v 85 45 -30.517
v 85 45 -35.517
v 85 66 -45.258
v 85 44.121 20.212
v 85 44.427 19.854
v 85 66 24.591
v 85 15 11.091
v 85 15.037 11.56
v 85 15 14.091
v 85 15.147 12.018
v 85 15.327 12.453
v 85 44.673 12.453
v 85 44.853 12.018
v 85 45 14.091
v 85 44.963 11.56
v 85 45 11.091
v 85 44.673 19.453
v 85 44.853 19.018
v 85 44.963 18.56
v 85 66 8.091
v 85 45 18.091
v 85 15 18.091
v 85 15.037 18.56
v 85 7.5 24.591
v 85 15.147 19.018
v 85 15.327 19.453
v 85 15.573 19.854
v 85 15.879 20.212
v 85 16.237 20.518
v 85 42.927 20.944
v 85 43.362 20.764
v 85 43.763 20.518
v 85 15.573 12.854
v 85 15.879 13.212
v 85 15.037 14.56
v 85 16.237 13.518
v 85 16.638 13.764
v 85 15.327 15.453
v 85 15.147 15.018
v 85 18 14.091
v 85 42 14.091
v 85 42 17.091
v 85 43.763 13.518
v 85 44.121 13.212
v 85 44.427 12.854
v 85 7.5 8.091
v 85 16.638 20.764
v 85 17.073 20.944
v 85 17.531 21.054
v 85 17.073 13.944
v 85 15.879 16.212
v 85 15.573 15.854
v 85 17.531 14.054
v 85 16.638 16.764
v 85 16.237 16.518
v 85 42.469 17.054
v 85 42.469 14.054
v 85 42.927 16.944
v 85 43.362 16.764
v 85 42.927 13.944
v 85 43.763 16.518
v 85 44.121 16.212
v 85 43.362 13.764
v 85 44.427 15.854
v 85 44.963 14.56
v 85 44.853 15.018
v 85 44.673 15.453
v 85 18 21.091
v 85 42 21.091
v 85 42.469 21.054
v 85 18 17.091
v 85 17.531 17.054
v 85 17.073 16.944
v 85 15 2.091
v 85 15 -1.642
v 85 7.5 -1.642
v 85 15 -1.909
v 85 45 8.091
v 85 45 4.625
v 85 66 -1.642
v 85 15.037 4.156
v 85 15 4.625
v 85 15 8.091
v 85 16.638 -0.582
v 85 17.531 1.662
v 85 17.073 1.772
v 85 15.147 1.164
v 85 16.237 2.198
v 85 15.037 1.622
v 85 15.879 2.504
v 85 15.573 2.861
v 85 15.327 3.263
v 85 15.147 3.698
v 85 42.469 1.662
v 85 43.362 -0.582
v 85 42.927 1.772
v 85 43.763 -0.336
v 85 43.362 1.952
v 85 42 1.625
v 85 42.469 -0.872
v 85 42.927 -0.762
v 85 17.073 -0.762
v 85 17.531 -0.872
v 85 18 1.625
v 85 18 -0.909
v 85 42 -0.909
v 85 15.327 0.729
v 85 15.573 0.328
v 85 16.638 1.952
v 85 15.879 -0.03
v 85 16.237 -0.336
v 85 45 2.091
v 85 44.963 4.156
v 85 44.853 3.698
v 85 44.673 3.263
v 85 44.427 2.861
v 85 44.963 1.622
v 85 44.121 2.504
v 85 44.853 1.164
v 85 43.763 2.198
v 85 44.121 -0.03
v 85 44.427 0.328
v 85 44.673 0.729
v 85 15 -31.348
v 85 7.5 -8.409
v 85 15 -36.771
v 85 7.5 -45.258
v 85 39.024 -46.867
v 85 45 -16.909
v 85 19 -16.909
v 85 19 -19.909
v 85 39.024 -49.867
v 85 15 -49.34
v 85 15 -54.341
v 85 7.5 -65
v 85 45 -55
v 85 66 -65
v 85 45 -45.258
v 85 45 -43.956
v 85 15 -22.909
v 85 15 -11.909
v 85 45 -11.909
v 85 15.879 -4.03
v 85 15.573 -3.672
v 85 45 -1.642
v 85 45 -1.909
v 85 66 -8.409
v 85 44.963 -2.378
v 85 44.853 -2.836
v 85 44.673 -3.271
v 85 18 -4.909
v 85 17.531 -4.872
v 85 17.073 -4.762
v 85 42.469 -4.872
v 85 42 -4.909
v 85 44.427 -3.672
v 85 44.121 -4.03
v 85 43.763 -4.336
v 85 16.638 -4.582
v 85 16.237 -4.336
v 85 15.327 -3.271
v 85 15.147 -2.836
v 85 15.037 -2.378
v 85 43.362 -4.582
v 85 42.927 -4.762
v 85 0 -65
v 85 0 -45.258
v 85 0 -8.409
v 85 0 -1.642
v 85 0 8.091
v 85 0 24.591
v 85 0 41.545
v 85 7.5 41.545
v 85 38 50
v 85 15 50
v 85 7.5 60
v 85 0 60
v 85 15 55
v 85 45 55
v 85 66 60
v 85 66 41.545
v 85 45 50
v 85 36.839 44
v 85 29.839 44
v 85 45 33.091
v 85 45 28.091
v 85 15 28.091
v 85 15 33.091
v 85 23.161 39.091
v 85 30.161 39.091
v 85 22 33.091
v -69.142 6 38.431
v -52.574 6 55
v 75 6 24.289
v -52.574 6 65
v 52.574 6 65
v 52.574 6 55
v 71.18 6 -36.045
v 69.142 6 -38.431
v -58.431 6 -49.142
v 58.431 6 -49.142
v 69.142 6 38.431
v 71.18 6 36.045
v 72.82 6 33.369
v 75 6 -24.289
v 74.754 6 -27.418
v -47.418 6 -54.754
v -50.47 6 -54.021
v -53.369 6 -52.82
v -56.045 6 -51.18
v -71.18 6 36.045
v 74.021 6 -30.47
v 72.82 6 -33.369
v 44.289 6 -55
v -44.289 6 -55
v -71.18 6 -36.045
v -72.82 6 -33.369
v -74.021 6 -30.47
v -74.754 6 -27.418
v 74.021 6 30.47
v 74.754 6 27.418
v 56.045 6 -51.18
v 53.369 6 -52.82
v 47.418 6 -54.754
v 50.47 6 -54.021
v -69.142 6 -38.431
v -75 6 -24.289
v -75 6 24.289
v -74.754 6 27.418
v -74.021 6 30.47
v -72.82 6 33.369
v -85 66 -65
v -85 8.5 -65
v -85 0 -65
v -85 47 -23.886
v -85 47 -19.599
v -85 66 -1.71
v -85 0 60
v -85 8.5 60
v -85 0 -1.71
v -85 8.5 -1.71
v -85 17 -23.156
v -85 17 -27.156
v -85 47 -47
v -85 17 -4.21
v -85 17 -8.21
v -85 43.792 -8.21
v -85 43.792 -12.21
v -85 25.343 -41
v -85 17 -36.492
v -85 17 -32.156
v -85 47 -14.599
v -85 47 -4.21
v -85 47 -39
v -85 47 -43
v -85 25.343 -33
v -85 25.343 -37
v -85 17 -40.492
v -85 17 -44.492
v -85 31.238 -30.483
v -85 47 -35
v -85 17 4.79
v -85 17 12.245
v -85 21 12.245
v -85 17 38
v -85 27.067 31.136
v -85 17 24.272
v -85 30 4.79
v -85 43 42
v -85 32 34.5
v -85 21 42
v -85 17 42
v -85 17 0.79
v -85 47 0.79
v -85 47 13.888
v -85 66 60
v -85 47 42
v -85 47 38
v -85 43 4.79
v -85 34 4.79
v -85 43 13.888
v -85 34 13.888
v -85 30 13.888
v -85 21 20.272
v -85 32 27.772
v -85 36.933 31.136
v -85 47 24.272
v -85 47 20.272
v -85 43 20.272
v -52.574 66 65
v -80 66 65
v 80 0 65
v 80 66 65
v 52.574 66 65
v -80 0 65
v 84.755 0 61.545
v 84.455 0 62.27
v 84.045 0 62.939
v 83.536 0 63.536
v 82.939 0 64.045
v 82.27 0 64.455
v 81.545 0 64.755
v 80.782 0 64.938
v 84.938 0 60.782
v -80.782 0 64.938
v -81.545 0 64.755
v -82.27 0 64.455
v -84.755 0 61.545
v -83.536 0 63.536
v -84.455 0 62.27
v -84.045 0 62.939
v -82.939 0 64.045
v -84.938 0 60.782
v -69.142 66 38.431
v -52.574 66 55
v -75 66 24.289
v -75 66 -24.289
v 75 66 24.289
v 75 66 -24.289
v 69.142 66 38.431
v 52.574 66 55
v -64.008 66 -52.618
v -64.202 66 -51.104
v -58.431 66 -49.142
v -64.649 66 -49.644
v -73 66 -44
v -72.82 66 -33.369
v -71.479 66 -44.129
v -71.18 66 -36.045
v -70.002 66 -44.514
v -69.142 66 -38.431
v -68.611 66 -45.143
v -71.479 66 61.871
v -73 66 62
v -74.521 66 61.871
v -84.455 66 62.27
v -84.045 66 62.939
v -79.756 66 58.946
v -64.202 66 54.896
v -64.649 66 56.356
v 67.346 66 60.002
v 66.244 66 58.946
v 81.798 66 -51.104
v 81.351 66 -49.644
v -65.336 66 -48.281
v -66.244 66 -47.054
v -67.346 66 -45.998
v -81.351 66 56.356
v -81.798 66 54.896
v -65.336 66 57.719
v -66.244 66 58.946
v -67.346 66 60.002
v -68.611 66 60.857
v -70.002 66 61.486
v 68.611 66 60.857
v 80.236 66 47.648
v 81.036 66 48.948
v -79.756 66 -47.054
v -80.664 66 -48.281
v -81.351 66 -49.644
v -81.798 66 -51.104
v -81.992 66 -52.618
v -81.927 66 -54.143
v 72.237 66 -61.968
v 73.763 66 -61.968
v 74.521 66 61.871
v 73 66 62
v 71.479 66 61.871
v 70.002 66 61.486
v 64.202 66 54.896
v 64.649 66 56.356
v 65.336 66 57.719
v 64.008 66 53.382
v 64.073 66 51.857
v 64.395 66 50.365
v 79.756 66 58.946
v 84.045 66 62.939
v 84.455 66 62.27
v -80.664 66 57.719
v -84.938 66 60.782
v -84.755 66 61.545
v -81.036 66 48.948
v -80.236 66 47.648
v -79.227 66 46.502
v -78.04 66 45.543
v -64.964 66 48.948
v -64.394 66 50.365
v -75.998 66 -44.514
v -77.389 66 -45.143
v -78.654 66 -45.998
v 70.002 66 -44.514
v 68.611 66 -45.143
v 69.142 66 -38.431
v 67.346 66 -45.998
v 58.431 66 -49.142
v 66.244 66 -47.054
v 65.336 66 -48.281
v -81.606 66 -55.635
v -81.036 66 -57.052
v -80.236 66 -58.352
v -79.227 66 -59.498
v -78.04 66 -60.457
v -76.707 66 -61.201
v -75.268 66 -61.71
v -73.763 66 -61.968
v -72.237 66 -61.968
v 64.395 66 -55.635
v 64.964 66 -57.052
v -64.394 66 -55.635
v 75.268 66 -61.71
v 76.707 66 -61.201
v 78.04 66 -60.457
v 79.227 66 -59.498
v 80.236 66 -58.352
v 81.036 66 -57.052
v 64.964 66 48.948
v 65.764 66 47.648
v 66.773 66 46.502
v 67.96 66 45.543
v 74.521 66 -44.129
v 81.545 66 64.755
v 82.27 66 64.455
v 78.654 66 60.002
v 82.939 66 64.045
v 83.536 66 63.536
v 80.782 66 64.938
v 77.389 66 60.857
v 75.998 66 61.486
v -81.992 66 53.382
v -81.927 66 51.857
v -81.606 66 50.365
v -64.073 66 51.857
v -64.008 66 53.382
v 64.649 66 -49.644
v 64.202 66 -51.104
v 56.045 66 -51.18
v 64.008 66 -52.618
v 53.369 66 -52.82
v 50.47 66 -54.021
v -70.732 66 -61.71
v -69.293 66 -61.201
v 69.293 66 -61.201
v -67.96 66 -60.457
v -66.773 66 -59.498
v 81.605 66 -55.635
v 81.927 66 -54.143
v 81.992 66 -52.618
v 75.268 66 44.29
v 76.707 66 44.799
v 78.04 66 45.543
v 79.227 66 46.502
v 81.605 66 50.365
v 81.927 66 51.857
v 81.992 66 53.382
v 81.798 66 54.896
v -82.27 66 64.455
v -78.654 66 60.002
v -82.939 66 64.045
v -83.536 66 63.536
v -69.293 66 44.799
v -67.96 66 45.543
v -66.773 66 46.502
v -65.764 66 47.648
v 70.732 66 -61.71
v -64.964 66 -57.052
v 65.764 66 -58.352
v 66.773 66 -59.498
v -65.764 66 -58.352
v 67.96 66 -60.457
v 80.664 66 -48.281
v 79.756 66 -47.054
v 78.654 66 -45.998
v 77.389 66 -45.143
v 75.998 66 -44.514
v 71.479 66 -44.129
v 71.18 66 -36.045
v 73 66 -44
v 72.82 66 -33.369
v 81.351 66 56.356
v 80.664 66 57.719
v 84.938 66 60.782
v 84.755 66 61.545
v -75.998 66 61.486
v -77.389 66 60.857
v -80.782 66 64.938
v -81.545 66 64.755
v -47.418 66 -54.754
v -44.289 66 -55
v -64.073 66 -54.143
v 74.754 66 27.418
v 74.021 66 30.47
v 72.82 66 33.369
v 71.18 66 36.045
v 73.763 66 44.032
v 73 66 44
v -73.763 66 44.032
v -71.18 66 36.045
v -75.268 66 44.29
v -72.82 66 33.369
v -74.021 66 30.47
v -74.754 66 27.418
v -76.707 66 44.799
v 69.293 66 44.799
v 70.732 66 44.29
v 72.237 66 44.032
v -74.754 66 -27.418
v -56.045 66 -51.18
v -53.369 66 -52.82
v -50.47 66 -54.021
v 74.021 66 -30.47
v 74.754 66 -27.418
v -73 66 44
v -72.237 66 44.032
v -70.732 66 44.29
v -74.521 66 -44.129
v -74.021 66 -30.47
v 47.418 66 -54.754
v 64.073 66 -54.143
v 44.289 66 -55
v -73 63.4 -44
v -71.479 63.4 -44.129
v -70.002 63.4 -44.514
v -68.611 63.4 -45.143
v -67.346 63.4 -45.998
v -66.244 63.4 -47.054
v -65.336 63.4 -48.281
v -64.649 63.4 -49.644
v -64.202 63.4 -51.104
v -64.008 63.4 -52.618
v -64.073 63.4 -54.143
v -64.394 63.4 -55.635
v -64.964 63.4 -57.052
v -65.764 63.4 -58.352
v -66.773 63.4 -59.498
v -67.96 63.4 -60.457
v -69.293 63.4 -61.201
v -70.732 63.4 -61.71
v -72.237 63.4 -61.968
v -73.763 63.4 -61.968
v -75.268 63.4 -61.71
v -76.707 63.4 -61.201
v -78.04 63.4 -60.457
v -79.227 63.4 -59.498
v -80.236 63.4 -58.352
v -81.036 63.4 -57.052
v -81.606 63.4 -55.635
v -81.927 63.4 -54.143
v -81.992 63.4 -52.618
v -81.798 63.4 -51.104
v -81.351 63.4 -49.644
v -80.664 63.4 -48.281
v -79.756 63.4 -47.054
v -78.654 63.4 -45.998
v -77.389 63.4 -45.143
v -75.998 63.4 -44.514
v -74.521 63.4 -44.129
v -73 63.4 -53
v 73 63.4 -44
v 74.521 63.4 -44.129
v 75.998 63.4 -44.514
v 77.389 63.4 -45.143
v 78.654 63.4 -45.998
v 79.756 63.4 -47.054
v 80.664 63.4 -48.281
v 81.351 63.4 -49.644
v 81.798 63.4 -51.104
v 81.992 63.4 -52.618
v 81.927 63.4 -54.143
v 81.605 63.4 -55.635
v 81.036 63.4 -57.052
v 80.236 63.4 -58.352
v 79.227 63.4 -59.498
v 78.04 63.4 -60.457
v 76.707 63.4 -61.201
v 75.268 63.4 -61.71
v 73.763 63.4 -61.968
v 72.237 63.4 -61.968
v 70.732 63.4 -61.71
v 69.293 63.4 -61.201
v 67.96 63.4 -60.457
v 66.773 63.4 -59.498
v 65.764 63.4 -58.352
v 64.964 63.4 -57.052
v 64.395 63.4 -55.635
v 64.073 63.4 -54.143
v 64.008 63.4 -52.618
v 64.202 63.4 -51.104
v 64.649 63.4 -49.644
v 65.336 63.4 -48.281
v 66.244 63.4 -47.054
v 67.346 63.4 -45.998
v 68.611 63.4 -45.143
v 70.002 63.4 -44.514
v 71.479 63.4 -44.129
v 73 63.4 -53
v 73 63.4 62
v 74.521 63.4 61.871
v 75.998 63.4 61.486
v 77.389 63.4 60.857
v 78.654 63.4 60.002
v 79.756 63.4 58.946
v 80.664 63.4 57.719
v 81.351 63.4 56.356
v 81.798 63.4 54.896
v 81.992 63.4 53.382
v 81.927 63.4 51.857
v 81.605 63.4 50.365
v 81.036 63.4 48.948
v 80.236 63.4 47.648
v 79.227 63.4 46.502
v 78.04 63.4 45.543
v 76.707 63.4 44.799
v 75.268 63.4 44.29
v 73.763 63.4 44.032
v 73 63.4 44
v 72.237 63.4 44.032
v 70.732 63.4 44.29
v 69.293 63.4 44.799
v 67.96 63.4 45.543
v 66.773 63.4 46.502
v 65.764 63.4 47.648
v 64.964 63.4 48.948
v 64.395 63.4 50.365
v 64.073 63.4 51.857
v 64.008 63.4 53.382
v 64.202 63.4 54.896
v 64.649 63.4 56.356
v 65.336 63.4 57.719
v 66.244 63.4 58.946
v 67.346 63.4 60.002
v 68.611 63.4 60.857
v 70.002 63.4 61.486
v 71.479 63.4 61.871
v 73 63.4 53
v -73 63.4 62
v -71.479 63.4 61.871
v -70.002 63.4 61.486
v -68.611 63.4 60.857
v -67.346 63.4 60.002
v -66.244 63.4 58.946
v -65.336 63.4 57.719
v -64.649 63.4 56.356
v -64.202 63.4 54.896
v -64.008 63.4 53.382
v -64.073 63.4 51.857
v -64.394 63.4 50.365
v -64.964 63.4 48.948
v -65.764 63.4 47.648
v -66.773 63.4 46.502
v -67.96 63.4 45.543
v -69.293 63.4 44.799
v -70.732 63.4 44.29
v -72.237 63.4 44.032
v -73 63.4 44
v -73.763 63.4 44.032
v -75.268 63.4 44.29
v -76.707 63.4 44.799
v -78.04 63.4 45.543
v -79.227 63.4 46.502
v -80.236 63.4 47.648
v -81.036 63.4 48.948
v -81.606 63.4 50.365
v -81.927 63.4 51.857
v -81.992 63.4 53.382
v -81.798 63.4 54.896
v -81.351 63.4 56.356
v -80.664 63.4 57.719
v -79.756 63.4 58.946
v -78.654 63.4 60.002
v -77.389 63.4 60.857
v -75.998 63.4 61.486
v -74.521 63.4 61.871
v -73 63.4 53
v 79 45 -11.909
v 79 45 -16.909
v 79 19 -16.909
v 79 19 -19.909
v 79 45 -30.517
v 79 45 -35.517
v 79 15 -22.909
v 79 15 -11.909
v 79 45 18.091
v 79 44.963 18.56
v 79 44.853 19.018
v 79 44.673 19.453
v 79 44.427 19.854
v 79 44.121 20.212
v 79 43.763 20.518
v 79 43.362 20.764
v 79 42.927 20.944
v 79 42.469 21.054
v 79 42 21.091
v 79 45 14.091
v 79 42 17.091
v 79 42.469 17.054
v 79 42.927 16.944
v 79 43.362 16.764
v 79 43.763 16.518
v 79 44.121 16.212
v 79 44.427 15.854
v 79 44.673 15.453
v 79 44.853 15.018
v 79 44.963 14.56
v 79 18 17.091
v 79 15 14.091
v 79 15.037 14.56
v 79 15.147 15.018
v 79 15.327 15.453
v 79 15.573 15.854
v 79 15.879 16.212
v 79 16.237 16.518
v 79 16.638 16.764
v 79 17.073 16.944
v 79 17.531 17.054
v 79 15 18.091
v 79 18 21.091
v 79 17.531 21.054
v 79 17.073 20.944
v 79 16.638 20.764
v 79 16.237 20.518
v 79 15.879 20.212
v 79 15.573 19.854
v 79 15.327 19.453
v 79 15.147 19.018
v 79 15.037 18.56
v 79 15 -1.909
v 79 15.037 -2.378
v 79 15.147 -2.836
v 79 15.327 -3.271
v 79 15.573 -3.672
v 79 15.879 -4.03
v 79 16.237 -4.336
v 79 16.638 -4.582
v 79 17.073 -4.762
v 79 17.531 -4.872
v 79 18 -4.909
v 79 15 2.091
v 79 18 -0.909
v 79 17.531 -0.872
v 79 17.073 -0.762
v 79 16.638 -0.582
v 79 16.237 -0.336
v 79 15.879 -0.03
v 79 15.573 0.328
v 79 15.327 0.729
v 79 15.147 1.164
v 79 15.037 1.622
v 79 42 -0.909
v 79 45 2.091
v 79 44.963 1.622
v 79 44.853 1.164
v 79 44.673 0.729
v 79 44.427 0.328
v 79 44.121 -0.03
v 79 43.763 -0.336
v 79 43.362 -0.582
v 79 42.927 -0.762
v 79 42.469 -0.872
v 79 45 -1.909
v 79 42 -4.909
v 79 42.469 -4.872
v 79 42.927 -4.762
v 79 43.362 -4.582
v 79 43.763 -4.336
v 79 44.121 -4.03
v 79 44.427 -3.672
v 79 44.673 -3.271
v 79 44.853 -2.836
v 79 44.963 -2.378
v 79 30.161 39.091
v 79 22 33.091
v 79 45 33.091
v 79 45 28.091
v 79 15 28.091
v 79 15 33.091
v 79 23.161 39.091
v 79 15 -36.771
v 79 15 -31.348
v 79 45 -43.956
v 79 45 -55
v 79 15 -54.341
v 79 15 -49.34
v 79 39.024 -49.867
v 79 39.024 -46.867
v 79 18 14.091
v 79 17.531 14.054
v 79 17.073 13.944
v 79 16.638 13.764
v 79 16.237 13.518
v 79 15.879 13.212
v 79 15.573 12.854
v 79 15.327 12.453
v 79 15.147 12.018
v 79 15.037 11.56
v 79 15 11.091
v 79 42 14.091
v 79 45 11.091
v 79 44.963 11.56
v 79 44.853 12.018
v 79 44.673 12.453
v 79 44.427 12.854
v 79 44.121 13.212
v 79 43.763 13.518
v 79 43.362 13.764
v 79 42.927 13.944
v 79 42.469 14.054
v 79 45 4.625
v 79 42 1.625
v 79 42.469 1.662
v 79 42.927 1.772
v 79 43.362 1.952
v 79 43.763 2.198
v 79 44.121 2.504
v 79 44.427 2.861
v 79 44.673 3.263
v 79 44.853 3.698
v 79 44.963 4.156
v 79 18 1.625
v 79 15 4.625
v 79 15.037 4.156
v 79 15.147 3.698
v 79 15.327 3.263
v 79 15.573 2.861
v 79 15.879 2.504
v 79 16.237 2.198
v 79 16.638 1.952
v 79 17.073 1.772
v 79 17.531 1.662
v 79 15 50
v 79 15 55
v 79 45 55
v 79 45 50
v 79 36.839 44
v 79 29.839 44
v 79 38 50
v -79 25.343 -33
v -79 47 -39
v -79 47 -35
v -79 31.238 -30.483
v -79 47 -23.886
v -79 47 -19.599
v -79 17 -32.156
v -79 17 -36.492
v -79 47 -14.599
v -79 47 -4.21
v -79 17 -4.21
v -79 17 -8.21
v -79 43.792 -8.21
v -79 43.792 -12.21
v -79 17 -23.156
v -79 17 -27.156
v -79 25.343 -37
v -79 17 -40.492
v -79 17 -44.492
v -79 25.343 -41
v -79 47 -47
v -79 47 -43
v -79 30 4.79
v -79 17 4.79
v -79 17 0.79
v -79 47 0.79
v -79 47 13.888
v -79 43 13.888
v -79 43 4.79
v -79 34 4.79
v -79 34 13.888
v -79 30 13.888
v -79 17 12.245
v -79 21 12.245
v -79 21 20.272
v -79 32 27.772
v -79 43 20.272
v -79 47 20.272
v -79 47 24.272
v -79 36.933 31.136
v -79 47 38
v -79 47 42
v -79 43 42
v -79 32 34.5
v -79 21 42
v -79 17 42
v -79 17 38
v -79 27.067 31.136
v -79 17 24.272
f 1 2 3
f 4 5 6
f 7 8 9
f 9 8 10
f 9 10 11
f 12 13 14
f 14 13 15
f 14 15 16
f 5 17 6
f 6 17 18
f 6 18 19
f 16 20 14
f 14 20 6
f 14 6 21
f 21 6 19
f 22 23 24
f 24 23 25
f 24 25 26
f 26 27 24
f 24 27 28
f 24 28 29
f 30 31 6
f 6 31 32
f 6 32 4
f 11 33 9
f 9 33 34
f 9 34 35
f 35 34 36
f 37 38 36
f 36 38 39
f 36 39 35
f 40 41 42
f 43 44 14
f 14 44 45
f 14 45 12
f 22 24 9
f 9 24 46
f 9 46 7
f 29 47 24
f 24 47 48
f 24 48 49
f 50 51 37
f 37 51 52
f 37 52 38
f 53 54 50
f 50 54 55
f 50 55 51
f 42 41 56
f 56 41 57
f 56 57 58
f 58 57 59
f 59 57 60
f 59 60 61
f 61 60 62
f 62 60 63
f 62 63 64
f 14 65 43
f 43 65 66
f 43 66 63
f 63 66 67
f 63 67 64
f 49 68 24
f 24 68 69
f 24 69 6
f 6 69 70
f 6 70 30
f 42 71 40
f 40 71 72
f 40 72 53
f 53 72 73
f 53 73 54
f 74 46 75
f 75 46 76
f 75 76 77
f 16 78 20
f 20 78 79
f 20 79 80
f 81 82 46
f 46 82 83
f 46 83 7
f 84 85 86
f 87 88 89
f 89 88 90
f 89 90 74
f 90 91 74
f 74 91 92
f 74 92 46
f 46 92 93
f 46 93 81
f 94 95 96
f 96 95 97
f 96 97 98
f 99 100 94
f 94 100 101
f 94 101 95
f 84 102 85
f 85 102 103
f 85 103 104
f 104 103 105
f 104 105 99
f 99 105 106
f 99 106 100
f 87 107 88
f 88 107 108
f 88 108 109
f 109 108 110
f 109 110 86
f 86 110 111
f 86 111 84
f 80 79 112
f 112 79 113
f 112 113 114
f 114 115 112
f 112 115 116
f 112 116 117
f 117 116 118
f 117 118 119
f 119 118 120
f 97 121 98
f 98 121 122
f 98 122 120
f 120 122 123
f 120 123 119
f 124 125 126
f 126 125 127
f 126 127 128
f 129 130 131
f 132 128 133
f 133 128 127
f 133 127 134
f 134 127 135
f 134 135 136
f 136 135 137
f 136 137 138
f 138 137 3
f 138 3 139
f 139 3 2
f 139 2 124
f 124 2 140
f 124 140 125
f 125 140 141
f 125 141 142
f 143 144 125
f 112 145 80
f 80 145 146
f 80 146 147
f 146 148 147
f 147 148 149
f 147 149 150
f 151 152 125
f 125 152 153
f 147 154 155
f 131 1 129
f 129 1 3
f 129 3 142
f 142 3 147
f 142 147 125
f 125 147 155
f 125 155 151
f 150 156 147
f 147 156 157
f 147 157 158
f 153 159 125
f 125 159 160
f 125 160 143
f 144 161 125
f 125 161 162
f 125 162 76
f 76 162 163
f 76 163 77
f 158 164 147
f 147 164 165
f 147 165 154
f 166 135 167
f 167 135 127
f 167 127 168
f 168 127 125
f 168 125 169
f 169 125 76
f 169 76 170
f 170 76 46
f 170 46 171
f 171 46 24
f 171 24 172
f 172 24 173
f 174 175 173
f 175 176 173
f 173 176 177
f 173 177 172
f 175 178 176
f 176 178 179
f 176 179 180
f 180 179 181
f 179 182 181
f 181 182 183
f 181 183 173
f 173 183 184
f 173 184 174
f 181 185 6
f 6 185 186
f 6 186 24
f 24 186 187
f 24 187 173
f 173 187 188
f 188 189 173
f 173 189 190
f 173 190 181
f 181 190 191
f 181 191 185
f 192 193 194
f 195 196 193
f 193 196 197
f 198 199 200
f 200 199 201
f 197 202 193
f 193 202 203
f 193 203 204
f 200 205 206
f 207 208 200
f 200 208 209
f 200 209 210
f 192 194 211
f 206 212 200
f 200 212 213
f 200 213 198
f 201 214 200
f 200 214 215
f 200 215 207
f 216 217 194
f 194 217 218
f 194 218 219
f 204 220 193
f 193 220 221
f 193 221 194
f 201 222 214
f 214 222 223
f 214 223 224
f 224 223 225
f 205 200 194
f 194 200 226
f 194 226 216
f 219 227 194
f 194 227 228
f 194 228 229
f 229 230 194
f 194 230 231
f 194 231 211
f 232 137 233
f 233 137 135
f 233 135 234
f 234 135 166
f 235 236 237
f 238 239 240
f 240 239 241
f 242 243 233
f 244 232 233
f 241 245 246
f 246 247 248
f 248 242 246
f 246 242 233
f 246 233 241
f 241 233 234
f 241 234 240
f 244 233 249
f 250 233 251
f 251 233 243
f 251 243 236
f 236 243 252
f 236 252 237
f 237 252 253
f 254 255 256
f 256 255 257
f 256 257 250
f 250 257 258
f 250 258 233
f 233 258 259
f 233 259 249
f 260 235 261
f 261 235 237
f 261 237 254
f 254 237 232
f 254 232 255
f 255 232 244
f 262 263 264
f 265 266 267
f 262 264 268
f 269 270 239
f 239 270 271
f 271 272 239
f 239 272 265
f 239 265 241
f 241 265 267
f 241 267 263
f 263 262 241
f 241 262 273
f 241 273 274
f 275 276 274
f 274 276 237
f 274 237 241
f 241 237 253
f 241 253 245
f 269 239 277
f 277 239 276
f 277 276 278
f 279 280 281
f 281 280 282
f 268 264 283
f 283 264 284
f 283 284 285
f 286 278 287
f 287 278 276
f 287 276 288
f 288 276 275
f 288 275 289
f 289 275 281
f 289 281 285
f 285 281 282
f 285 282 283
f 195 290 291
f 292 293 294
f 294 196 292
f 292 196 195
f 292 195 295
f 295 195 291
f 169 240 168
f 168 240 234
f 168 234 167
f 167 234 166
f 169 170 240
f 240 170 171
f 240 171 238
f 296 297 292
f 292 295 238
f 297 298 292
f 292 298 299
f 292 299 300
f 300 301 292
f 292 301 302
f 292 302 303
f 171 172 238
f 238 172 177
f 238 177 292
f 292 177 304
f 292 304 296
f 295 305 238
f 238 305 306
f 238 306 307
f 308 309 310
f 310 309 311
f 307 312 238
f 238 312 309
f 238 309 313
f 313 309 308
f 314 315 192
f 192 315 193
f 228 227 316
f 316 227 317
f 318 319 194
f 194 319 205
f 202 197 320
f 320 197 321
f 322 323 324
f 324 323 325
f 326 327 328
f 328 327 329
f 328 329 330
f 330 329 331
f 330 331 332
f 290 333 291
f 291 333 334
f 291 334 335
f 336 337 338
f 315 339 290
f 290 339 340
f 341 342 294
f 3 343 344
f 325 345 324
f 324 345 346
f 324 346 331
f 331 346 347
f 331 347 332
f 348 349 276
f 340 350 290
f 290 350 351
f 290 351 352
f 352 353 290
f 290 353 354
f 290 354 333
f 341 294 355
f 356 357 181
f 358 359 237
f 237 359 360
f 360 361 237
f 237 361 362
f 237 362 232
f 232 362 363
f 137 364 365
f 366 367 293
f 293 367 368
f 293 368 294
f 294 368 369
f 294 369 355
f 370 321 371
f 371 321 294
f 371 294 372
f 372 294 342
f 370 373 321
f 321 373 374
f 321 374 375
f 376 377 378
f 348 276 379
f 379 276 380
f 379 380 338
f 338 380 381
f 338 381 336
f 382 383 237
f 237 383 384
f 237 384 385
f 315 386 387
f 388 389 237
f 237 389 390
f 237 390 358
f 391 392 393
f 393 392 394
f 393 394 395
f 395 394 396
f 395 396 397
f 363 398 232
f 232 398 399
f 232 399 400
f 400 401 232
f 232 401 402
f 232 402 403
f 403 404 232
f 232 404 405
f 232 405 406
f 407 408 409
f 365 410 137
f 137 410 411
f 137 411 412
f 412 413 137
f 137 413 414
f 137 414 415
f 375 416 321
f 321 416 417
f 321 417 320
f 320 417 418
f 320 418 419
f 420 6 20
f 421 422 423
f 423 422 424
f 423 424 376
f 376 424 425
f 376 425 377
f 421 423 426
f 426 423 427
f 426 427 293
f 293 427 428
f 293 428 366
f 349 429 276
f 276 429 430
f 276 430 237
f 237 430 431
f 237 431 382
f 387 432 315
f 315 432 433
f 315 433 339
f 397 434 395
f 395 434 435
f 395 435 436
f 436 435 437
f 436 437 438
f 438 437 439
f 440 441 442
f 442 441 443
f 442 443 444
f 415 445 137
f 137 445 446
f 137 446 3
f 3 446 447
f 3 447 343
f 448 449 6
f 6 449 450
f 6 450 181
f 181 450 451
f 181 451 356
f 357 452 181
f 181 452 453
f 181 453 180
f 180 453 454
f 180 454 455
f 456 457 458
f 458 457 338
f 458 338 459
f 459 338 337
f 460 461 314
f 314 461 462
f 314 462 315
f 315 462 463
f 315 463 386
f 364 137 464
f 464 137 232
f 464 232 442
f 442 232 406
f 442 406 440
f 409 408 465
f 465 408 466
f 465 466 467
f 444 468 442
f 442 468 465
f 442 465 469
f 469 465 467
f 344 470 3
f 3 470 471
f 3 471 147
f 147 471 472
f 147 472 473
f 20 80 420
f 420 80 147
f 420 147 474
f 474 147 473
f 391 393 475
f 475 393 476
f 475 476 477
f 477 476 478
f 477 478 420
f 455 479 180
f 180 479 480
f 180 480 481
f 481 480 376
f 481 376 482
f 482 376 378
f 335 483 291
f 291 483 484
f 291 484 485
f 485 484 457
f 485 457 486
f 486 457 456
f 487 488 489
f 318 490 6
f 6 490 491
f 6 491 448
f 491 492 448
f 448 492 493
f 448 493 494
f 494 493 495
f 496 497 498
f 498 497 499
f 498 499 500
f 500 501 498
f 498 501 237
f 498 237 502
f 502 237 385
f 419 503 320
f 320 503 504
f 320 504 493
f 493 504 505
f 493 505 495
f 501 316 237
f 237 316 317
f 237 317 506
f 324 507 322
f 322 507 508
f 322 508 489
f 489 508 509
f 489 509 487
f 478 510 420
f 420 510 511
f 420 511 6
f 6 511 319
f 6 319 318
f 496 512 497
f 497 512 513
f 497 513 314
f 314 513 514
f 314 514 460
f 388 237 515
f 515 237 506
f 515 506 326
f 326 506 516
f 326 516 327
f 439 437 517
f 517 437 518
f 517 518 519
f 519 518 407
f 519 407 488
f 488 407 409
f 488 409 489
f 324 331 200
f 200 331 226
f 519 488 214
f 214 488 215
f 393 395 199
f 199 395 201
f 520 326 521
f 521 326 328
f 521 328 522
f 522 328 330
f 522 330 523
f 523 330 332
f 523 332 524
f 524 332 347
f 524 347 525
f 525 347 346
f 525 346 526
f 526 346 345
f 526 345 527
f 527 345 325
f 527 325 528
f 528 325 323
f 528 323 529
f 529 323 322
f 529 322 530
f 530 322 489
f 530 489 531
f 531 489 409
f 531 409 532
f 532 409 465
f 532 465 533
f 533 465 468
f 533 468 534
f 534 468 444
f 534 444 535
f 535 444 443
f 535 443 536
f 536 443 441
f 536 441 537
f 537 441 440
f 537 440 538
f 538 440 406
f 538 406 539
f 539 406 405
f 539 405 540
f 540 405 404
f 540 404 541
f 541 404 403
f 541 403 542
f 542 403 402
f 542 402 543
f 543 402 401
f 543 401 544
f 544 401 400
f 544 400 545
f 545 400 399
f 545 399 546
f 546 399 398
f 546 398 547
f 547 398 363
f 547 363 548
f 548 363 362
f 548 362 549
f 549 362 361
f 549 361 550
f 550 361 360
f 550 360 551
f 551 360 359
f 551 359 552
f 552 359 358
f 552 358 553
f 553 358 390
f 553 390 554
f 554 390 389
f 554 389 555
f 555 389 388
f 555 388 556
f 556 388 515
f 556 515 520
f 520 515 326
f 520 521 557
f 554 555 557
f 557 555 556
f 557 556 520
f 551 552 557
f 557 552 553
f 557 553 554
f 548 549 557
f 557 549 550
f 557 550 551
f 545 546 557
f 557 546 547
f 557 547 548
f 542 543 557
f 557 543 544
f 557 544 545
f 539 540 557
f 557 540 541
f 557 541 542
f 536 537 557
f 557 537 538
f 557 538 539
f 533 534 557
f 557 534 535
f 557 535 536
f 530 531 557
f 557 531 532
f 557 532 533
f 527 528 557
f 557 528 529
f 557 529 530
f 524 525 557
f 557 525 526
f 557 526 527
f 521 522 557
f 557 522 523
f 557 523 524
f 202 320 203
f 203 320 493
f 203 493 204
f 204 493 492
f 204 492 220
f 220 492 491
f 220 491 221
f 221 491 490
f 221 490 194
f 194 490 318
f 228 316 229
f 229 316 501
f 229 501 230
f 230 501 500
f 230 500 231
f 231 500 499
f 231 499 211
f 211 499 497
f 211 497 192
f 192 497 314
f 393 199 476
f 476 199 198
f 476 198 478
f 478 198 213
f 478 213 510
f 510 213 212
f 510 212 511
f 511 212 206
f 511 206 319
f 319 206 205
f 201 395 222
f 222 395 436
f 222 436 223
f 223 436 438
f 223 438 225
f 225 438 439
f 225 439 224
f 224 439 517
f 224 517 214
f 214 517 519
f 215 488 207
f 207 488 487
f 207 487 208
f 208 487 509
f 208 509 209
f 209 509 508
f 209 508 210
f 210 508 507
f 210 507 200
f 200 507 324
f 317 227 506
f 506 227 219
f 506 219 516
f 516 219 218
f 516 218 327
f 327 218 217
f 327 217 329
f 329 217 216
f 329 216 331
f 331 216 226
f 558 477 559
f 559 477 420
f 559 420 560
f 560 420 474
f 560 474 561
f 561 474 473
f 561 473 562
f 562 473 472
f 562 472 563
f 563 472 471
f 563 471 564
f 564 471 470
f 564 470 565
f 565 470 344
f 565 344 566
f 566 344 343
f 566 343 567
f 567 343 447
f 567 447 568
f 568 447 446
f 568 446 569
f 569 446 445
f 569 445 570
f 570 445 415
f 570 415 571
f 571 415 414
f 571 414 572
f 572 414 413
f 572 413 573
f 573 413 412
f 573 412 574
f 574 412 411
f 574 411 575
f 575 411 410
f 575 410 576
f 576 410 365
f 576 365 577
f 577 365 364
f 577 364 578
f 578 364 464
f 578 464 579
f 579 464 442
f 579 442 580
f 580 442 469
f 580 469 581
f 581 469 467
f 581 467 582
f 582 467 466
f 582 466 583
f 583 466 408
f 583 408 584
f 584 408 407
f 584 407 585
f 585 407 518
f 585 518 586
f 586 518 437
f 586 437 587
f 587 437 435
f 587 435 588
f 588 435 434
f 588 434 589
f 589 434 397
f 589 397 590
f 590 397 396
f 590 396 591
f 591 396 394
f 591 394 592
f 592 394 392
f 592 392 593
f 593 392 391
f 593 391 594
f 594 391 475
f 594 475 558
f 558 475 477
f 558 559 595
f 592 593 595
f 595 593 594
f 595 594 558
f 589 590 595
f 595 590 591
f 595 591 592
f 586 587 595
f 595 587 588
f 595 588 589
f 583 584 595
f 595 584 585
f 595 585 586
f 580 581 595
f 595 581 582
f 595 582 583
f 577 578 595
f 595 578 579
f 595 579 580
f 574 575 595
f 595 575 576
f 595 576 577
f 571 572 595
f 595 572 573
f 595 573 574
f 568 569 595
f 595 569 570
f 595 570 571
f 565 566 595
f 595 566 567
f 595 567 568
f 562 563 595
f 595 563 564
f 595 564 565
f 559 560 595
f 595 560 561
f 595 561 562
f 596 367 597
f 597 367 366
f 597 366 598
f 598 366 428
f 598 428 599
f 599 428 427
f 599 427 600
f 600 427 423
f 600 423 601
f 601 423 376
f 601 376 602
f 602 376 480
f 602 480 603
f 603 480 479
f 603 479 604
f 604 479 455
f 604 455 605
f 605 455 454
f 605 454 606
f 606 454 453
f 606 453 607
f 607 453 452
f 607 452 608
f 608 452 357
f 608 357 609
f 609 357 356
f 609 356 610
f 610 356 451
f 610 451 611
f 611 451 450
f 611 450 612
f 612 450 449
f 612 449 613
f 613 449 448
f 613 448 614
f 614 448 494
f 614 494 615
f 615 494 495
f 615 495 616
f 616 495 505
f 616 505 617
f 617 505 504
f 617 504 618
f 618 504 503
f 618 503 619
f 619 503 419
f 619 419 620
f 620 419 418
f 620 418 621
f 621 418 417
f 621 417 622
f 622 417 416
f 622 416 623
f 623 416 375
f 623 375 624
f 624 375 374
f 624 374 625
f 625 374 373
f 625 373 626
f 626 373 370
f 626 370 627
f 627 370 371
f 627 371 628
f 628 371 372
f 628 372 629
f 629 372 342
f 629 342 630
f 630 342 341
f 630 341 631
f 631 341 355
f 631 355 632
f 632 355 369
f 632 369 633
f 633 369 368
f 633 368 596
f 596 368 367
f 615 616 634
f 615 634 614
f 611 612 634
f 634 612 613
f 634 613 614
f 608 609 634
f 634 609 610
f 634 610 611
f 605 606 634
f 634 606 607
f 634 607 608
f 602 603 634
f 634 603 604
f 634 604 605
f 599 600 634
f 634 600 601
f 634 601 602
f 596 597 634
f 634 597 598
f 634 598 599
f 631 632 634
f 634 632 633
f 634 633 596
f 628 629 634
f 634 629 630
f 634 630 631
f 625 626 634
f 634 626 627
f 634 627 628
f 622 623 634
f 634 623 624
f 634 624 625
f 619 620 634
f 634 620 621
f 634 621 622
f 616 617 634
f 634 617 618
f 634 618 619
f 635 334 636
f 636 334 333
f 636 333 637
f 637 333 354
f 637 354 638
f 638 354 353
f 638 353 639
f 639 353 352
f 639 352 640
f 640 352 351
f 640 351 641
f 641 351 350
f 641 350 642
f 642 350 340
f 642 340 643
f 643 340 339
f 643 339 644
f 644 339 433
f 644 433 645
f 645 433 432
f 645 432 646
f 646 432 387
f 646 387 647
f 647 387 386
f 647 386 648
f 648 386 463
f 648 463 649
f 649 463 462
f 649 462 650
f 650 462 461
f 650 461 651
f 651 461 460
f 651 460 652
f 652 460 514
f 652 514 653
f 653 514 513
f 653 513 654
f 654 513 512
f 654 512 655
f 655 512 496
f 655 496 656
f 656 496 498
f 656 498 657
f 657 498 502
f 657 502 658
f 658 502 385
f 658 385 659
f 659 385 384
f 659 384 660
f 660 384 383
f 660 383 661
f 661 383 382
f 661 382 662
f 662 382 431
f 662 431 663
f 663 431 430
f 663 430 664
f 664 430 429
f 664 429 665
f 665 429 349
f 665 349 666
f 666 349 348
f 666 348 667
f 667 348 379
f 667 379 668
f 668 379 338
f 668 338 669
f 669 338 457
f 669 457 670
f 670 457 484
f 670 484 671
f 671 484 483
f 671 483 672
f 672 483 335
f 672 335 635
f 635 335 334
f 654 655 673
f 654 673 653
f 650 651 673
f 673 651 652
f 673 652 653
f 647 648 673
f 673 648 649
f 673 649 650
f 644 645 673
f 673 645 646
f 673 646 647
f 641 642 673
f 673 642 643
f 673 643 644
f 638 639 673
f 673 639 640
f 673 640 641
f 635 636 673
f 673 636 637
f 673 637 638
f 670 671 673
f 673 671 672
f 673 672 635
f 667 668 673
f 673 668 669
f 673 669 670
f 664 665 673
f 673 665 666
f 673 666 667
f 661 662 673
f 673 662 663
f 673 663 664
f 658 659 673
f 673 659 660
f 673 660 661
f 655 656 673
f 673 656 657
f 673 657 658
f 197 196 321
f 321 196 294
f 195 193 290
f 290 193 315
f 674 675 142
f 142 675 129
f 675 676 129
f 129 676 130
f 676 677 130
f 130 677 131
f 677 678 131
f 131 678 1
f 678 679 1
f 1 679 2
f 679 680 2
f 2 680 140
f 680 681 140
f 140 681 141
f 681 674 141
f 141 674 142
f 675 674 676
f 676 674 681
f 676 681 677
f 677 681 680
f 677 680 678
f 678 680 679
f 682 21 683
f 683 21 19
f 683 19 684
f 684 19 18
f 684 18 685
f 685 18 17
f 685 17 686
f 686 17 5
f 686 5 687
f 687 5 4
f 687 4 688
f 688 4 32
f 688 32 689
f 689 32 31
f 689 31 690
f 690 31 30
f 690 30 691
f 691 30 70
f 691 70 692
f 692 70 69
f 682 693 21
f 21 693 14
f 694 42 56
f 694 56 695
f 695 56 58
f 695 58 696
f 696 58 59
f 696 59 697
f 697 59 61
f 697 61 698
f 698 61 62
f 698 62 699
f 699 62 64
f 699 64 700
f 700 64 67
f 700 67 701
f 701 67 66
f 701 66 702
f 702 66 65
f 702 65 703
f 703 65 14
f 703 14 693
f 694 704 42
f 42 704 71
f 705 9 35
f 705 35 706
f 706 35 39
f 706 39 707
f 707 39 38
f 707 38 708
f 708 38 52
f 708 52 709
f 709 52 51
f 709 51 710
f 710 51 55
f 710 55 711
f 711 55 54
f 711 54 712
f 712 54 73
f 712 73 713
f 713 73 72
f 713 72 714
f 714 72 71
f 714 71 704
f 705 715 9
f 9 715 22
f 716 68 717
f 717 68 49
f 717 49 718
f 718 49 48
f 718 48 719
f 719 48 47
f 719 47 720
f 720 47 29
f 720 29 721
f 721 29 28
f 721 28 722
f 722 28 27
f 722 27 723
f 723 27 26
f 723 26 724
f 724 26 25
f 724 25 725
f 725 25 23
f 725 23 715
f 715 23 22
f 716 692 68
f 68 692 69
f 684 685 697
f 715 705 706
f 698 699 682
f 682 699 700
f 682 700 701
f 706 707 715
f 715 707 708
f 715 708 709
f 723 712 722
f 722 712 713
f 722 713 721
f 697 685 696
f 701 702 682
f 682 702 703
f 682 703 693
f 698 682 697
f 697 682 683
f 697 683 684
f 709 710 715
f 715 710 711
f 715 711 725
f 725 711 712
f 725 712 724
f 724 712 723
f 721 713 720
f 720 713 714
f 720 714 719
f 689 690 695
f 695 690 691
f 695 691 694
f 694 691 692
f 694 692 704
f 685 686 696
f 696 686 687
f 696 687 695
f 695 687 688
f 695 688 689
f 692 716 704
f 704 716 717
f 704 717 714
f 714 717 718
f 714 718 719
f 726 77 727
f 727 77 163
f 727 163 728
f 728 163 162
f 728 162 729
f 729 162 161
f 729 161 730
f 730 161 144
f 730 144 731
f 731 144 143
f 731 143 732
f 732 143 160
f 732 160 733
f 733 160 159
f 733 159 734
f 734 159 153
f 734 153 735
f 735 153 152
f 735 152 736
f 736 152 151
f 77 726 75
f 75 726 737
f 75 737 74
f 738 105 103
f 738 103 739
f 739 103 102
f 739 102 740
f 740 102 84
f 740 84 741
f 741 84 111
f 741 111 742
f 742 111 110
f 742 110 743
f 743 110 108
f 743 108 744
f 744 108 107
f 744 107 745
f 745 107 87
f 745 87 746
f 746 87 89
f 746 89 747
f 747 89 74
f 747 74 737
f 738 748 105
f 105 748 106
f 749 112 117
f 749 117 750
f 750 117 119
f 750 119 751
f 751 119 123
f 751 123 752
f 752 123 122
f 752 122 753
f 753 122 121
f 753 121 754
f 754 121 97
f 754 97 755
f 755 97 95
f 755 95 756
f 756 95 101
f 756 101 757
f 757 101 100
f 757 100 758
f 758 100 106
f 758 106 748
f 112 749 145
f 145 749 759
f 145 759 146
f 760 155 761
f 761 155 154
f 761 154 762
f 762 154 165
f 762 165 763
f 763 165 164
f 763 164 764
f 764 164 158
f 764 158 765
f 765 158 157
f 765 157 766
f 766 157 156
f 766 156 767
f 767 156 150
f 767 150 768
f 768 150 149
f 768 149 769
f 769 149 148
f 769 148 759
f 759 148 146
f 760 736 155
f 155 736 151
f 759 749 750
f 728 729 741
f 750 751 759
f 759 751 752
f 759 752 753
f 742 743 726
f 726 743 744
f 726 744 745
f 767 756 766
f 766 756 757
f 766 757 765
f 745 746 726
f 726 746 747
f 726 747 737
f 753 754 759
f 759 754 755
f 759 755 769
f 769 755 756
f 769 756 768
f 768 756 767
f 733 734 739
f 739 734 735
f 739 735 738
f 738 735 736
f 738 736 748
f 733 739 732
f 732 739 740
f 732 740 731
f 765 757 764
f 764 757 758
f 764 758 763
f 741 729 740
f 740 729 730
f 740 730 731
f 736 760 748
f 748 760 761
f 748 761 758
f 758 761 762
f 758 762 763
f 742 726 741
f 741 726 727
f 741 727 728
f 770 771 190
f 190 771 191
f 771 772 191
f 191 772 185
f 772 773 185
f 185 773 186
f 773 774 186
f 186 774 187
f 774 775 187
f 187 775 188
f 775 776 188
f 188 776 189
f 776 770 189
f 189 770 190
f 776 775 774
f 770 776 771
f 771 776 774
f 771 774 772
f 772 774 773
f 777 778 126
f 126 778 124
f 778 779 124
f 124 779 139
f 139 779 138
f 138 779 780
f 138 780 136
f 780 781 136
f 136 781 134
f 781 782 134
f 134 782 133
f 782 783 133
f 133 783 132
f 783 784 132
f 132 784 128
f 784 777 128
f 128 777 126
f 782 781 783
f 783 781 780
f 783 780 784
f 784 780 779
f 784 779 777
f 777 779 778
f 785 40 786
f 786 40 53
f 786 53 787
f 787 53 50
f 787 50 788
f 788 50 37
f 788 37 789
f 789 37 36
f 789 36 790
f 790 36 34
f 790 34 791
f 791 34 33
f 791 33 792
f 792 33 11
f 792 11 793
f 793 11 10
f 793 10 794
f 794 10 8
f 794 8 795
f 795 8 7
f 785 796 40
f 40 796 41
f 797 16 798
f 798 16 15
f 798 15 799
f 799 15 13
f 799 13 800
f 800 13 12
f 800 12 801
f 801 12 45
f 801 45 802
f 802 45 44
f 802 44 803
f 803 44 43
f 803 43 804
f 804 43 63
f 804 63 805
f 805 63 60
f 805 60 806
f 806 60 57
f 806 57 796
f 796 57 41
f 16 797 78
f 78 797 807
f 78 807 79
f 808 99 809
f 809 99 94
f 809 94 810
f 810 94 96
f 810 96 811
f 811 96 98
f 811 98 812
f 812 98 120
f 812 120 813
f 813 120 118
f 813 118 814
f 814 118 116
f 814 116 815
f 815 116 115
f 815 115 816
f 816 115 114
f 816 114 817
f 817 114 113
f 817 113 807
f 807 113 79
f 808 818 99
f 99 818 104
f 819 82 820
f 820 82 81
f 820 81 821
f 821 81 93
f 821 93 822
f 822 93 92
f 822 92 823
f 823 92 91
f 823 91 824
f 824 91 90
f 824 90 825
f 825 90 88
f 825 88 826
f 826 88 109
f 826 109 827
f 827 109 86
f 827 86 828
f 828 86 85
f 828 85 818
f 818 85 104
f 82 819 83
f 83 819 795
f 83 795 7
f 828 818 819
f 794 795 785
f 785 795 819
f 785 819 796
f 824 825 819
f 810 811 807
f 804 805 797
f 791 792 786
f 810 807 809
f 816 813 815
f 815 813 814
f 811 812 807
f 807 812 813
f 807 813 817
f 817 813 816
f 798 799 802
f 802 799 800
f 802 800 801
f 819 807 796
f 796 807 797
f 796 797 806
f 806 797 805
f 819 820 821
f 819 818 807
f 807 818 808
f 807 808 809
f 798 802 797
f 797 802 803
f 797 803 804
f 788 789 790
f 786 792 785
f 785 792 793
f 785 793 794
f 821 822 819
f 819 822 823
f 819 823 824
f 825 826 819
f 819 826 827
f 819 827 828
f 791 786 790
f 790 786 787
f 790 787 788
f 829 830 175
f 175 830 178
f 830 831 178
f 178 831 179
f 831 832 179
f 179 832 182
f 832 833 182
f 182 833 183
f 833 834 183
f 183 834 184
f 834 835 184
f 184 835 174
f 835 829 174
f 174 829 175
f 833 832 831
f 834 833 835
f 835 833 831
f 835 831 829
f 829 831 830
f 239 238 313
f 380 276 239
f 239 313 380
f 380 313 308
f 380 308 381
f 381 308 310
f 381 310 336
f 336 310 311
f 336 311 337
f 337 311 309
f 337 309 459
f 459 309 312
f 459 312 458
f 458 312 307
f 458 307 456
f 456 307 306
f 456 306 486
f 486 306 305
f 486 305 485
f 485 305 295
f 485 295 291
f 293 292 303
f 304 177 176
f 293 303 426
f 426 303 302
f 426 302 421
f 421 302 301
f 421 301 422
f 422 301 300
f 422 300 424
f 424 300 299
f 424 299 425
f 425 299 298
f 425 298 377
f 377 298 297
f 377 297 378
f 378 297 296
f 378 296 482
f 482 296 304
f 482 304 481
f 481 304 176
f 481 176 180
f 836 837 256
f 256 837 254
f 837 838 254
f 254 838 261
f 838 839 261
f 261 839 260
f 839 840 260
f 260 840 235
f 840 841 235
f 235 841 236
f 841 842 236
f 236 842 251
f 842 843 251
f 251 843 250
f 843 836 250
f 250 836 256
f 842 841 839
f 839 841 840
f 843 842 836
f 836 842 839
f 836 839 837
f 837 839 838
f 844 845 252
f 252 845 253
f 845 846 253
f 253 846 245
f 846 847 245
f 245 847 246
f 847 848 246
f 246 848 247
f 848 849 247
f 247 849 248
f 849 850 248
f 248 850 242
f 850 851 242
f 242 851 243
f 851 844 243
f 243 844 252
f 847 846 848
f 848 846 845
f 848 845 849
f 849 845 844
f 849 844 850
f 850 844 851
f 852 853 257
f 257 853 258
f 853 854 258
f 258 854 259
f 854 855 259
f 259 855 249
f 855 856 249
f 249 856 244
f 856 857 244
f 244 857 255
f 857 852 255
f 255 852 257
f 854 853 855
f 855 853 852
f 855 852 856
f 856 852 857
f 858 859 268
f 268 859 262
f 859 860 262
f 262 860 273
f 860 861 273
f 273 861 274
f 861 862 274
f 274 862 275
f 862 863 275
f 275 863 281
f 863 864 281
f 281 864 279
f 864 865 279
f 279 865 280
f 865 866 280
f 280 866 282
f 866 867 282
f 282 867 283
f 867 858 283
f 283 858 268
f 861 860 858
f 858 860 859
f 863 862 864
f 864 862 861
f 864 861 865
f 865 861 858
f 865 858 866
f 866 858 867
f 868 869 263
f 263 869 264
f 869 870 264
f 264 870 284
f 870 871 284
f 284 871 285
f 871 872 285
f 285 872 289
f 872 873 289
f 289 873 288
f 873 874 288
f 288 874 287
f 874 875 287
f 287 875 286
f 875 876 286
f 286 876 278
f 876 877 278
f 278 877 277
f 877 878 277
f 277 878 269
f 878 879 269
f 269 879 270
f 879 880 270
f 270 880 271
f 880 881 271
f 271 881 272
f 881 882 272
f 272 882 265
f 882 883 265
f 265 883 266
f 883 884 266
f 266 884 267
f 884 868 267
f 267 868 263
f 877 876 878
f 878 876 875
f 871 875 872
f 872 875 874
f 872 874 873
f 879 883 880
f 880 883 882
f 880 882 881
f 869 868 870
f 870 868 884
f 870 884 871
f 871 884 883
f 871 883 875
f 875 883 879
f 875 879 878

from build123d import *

# Parameters (mm, degrees)
SKETCH1_W               = 170
SKETCH1_H               = 130
BOSS_EXTRUDE1_DEPTH     = 6
BOSS_EXTRUDE2_DEPTH     = 60
SKETCH3_R               = 9
CUT_EXTRUDE1_DEPTH      = 2.6
FILLET1_R               = 20
MIRROR3_COPY_1_SKETCH_R = 9
MIRROR3_COPY_1_DEPTH    = 2.6
SKETCH5_W               = 105.147186258
SKETCH5_H               = 10
CUT_EXTRUDE2_DEPTH      = 60
CUT_EXTRUDE3_DEPTH      = 6
FILLET2_R               = 5
CUT_EXTRUDE6_DEPTH      = 6


with BuildPart() as part:
    # Sketch1 → Boss-Extrude1 (new body)
    with BuildSketch(Plane(origin=(0, 0, 0), x_dir=(1, 0, 0), z_dir=(0, 1, 0))):
        Rectangle(SKETCH1_W, SKETCH1_H)
    extrude(amount=BOSS_EXTRUDE1_DEPTH)

    # Sketch2 → Boss-Extrude2 (add)
    with BuildSketch(Plane(origin=(0, 6, 0), x_dir=(1, 0, 0), z_dir=(0, 1, 0))):
        Polygon((-75, -32.573593129), (-75, 0), (-85, 0), (-85, -65), (85, -65), (85, 0), (75, 0), (75, -32.573593129), (52.573593129, -55), (45, -55), (-45, -55), (-52.573593129, -55), align=None)
    boss_extrude2 = extrude(amount=BOSS_EXTRUDE2_DEPTH)

    # Mirror1: Boss-Extrude2 across plane
    add(boss_extrude2.mirror(Plane.XY))

    # Sketch3 → Cut-Extrude1 (cut)
    with BuildSketch(Plane(origin=(0, 66, 0), x_dir=(1, 0, 0), z_dir=(0, 1, 0))):
        with Locations(Location((-73, 53, 0), (0, 0, 270))):
            Circle(SKETCH3_R)
    cut_extrude1 = extrude(amount=-CUT_EXTRUDE1_DEPTH, mode=Mode.SUBTRACT)

    # Fillet1
    fillet1_edges = [part.edges().sort_by_distance(p)[0] for p in [
        (-75, 36, 32.573593129),
        (75, 36, 32.573593129),
        (-75, 36, -32.573593129),
        (-52.573593129, 36, -55),
        (52.573593129, 36, -55),
        (75, 36, -32.573593129),
    ]]
    fillet(fillet1_edges, radius=FILLET1_R)

    # Mirror2: Cut-Extrude1 across plane
    add(cut_extrude1.mirror(Plane(origin=(0, 0, 0), x_dir=(0, 0, 1), z_dir=(1, 0, 0))), mode=Mode.SUBTRACT)

    # Mirror3: Cut-Extrude1 across plane
    add(cut_extrude1.mirror(Plane.XY), mode=Mode.SUBTRACT)

    # Mirror3 copy 1 sketch → Mirror3 copy 1 (cut)
    with BuildSketch(Plane(origin=(0, 66, 0), x_dir=(-1, 0, 0), z_dir=(0, 1, 0))):
        with Locations(Location((-73, 53, 0), (0, 0, 270))):
            Circle(MIRROR3_COPY_1_SKETCH_R)
    extrude(amount=-MIRROR3_COPY_1_DEPTH, mode=Mode.SUBTRACT)

    # Sketch5 → Cut-Extrude2 (cut)
    with BuildSketch(Plane(origin=(0, 66, 0), x_dir=(1, 0, 0), z_dir=(0, 1, 0))):
        with Locations((0, -60)):
            Rectangle(SKETCH5_W, SKETCH5_H)
    extrude(amount=-CUT_EXTRUDE2_DEPTH, mode=Mode.SUBTRACT)

    # Sketch7 → Cut-Extrude3 (cut)
    with BuildSketch(Plane(origin=(85, 0, 0), x_dir=(0, 0, -1), z_dir=(1, 0, 0))):
        Polygon((-55, 15), (-55, 45), (-50, 45), (-44, 36.838679983), (-44, 29.838679983), (-50, 38), (-50, 15), align=None)
        Polygon((-33.090970614, 22), (-33.090970614, 45), (-28.090970614, 45), (-28.090970614, 15), (-33.090970614, 15), (-39.090970614, 23.161320017), (-39.090970614, 30.161320017), align=None)
        with BuildLine():
            Line((1.909029386, 45), (-2.090970614, 45))
            ThreePointArc((-2.090970614, 45), (0.030349729, 44.121320344), (0.909029386, 42))
            Line((0.909029386, 42), (0.909029386, 18))
            ThreePointArc((0.909029386, 18), (0.030349729, 15.878679656), (-2.090970614, 15))
            Line((-2.090970614, 15), (1.909029386, 15))
            ThreePointArc((1.909029386, 15), (4.030349729, 15.878679656), (4.909029386, 18))
            Line((4.909029386, 18), (4.909029386, 42))
            ThreePointArc((4.909029386, 42), (4.030349729, 44.121320344), (1.909029386, 45))
        make_face()
        with BuildLine():
            Line((-21.090970614, 42), (-21.090970614, 18))
            ThreePointArc((-21.090970614, 18), (-20.212290958, 15.878679656), (-18.090970614, 15))
            Line((-18.090970614, 15), (-14.090970614, 15))
            ThreePointArc((-14.090970614, 15), (-16.212290958, 15.878679656), (-17.090970614, 18))
            Line((-17.090970614, 18), (-17.090970614, 42))
            ThreePointArc((-17.090970614, 42), (-16.212290958, 44.121320344), (-14.090970614, 45))
            Line((-14.090970614, 45), (-18.090970614, 45))
            ThreePointArc((-18.090970614, 45), (-20.212290958, 44.121320344), (-21.090970614, 42))
        make_face()
        Polygon((11.909029386, 45), (11.909029386, 15), (22.909029386, 15), (35.516776739, 45), (30.516776739, 45), (19.909029386, 19), (16.909029386, 19), (16.909029386, 45), align=None)
        Polygon((31.347758846, 15), (43.9555062, 45), (55, 45), (54.340720725, 15), (49.339513512, 15), (49.867454564, 39.023554456), (46.867454564, 39.023554456), (36.771357727, 15), align=None)
        with BuildLine():
            Line((-4.624822618, 15), (-11.090970614, 15))
            ThreePointArc((-11.090970614, 15), (-13.212290958, 15.878679656), (-14.090970614, 18))
            Line((-14.090970614, 18), (-14.090970614, 42))
            ThreePointArc((-14.090970614, 42), (-13.212290958, 44.121320344), (-11.090970614, 45))
            Line((-11.090970614, 45), (-4.624822618, 45))
            ThreePointArc((-4.624822618, 45), (-2.503502275, 44.121320344), (-1.624822618, 42))
            Line((-1.624822618, 42), (-1.624822618, 18))
            ThreePointArc((-1.624822618, 18), (-2.503502275, 15.878679656), (-4.624822618, 15))
        make_face()
    extrude(amount=-CUT_EXTRUDE3_DEPTH, mode=Mode.SUBTRACT)

    # Fillet2
    fillet2_edges = [part.edges().sort_by_distance(p)[0] for p in [
        (85, 33, 65),
        (-85, 33, 65),
    ]]
    fillet(fillet2_edges, radius=FILLET2_R)

    # Sketch12 → Cut-Extrude6 (cut)
    with BuildSketch(Plane.ZY.offset(85)):
        Polygon((-39, 47), (-35, 47), (-30.482690446, 31.238340543), (-23.885743409, 47), (-19.599215517, 47), (-32.155533692, 17), (-36.491760677, 17), (-33, 25.342638252), align=None)
        Polygon((-14.599215517, 47), (-27.155533692, 17), (-23.155533692, 17), (-12.210225245, 43.791772221), (-8.210225245, 43.791772221), (-8.210225245, 17), (-4.210225245, 17), (-4.210225245, 47), align=None)
        Polygon((-37, 25.342638252), (-43, 47), (-47, 47), (-41, 25.342638252), (-44.491760677, 17), (-40.491760677, 17), align=None)
        Polygon((0.789774755, 47), (0.789774755, 17), (4.789774755, 17), (4.789774755, 30), (13.888047314, 30), (13.888047314, 34), (4.789774755, 34), (4.789774755, 43), (13.888047314, 43), (13.888047314, 47), align=None)
        Polygon((20.27200974, 47), (24.27200974, 47), (31.13600487, 36.933214608), (38, 47), (42, 47), (42, 43), (34.499696428, 32), (42, 21), (42, 17), (38, 17), (31.13600487, 27.066785392), (24.27200974, 17), (20.27200974, 17), (12.245273414, 17), (12.245273414, 21), (20.27200974, 21), (27.772313311, 32), (20.27200974, 43), align=None)
    extrude(amount=-CUT_EXTRUDE6_DEPTH, mode=Mode.SUBTRACT)


solid = part.part
